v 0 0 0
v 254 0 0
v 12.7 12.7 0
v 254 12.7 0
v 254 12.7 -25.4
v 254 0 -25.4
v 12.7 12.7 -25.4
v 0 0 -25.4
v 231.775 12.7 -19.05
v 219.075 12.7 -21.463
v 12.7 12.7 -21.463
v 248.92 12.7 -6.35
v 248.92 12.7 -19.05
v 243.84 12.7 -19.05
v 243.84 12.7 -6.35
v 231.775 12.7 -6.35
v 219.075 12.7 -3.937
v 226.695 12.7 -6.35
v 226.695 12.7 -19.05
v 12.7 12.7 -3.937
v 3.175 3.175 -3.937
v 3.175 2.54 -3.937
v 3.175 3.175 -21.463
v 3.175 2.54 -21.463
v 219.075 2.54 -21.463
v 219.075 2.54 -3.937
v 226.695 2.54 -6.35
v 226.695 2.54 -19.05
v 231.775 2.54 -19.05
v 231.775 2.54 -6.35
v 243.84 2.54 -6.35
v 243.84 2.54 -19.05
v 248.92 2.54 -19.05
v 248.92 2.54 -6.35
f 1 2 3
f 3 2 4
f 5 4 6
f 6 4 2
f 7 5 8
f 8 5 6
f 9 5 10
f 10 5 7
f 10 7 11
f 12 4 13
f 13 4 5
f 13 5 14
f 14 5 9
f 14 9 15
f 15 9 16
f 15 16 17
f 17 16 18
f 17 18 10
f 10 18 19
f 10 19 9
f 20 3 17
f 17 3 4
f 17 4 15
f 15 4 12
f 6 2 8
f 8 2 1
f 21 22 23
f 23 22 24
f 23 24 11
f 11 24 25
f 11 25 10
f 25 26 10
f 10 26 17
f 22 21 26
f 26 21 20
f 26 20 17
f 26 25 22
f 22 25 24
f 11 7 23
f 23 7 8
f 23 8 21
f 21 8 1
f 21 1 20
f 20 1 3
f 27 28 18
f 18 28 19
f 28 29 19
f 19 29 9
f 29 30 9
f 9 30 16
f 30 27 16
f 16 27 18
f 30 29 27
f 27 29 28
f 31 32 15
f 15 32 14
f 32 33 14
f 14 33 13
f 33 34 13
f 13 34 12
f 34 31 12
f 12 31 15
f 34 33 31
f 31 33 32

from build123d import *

# Parameters (mm, degrees)
SKETCH1_W          = 254
SKETCH1_H          = 25.4
BASE_EXTRUDE_DEPTH = 12.7
SKETCH3_W          = 215.9
SKETCH3_H          = 17.526
PIECE_CUT_DEPTH    = 10.16
CORNER_CUT_DEPTH   = 256.582569828
SKETCH6_W          = 5.08
SKETCH6_H          = 12.7
PEG_CUT_DEPTH      = 10.16


with BuildPart() as part:
    # Sketch1 → Base Extrude (new body)
    with BuildSketch(Plane(origin=(0, 0, 0), x_dir=(1, 0, 0), z_dir=(0, 1, 0))):
        with Locations((127, 12.7)):
            Rectangle(SKETCH1_W, SKETCH1_H)
    extrude(amount=BASE_EXTRUDE_DEPTH)

    # Sketch3 → Piece Cut (cut)
    with BuildSketch(Plane(origin=(0, 12.7, 0), x_dir=(1, 0, 0), z_dir=(0, 1, 0))):
        with Locations((111.125, 12.7)):
            Rectangle(SKETCH3_W, SKETCH3_H)
    extrude(amount=-PIECE_CUT_DEPTH, mode=Mode.SUBTRACT)

    # Sketch4 → Corner Cut (cut, through all)
    with BuildSketch(Plane(origin=(0, 0, -25.4), x_dir=(-1, 0, 0), z_dir=(0, 0, -1))):
        Polygon((0, 0), (-12.7, 12.7), (0, 12.7), align=None)
    extrude(amount=-CORNER_CUT_DEPTH, mode=Mode.SUBTRACT)

    # Sketch6 → Peg Cut (cut)
    with BuildSketch(Plane(origin=(0, 12.7, 0), x_dir=(1, 0, 0), z_dir=(0, 1, 0))):
        with Locations((229.235, 12.7)):
            Rectangle(SKETCH6_W, SKETCH6_H)
        with Locations((246.38, 12.7)):
            Rectangle(SKETCH6_W, SKETCH6_H)
    extrude(amount=-PEG_CUT_DEPTH, mode=Mode.SUBTRACT)


solid = part.part
